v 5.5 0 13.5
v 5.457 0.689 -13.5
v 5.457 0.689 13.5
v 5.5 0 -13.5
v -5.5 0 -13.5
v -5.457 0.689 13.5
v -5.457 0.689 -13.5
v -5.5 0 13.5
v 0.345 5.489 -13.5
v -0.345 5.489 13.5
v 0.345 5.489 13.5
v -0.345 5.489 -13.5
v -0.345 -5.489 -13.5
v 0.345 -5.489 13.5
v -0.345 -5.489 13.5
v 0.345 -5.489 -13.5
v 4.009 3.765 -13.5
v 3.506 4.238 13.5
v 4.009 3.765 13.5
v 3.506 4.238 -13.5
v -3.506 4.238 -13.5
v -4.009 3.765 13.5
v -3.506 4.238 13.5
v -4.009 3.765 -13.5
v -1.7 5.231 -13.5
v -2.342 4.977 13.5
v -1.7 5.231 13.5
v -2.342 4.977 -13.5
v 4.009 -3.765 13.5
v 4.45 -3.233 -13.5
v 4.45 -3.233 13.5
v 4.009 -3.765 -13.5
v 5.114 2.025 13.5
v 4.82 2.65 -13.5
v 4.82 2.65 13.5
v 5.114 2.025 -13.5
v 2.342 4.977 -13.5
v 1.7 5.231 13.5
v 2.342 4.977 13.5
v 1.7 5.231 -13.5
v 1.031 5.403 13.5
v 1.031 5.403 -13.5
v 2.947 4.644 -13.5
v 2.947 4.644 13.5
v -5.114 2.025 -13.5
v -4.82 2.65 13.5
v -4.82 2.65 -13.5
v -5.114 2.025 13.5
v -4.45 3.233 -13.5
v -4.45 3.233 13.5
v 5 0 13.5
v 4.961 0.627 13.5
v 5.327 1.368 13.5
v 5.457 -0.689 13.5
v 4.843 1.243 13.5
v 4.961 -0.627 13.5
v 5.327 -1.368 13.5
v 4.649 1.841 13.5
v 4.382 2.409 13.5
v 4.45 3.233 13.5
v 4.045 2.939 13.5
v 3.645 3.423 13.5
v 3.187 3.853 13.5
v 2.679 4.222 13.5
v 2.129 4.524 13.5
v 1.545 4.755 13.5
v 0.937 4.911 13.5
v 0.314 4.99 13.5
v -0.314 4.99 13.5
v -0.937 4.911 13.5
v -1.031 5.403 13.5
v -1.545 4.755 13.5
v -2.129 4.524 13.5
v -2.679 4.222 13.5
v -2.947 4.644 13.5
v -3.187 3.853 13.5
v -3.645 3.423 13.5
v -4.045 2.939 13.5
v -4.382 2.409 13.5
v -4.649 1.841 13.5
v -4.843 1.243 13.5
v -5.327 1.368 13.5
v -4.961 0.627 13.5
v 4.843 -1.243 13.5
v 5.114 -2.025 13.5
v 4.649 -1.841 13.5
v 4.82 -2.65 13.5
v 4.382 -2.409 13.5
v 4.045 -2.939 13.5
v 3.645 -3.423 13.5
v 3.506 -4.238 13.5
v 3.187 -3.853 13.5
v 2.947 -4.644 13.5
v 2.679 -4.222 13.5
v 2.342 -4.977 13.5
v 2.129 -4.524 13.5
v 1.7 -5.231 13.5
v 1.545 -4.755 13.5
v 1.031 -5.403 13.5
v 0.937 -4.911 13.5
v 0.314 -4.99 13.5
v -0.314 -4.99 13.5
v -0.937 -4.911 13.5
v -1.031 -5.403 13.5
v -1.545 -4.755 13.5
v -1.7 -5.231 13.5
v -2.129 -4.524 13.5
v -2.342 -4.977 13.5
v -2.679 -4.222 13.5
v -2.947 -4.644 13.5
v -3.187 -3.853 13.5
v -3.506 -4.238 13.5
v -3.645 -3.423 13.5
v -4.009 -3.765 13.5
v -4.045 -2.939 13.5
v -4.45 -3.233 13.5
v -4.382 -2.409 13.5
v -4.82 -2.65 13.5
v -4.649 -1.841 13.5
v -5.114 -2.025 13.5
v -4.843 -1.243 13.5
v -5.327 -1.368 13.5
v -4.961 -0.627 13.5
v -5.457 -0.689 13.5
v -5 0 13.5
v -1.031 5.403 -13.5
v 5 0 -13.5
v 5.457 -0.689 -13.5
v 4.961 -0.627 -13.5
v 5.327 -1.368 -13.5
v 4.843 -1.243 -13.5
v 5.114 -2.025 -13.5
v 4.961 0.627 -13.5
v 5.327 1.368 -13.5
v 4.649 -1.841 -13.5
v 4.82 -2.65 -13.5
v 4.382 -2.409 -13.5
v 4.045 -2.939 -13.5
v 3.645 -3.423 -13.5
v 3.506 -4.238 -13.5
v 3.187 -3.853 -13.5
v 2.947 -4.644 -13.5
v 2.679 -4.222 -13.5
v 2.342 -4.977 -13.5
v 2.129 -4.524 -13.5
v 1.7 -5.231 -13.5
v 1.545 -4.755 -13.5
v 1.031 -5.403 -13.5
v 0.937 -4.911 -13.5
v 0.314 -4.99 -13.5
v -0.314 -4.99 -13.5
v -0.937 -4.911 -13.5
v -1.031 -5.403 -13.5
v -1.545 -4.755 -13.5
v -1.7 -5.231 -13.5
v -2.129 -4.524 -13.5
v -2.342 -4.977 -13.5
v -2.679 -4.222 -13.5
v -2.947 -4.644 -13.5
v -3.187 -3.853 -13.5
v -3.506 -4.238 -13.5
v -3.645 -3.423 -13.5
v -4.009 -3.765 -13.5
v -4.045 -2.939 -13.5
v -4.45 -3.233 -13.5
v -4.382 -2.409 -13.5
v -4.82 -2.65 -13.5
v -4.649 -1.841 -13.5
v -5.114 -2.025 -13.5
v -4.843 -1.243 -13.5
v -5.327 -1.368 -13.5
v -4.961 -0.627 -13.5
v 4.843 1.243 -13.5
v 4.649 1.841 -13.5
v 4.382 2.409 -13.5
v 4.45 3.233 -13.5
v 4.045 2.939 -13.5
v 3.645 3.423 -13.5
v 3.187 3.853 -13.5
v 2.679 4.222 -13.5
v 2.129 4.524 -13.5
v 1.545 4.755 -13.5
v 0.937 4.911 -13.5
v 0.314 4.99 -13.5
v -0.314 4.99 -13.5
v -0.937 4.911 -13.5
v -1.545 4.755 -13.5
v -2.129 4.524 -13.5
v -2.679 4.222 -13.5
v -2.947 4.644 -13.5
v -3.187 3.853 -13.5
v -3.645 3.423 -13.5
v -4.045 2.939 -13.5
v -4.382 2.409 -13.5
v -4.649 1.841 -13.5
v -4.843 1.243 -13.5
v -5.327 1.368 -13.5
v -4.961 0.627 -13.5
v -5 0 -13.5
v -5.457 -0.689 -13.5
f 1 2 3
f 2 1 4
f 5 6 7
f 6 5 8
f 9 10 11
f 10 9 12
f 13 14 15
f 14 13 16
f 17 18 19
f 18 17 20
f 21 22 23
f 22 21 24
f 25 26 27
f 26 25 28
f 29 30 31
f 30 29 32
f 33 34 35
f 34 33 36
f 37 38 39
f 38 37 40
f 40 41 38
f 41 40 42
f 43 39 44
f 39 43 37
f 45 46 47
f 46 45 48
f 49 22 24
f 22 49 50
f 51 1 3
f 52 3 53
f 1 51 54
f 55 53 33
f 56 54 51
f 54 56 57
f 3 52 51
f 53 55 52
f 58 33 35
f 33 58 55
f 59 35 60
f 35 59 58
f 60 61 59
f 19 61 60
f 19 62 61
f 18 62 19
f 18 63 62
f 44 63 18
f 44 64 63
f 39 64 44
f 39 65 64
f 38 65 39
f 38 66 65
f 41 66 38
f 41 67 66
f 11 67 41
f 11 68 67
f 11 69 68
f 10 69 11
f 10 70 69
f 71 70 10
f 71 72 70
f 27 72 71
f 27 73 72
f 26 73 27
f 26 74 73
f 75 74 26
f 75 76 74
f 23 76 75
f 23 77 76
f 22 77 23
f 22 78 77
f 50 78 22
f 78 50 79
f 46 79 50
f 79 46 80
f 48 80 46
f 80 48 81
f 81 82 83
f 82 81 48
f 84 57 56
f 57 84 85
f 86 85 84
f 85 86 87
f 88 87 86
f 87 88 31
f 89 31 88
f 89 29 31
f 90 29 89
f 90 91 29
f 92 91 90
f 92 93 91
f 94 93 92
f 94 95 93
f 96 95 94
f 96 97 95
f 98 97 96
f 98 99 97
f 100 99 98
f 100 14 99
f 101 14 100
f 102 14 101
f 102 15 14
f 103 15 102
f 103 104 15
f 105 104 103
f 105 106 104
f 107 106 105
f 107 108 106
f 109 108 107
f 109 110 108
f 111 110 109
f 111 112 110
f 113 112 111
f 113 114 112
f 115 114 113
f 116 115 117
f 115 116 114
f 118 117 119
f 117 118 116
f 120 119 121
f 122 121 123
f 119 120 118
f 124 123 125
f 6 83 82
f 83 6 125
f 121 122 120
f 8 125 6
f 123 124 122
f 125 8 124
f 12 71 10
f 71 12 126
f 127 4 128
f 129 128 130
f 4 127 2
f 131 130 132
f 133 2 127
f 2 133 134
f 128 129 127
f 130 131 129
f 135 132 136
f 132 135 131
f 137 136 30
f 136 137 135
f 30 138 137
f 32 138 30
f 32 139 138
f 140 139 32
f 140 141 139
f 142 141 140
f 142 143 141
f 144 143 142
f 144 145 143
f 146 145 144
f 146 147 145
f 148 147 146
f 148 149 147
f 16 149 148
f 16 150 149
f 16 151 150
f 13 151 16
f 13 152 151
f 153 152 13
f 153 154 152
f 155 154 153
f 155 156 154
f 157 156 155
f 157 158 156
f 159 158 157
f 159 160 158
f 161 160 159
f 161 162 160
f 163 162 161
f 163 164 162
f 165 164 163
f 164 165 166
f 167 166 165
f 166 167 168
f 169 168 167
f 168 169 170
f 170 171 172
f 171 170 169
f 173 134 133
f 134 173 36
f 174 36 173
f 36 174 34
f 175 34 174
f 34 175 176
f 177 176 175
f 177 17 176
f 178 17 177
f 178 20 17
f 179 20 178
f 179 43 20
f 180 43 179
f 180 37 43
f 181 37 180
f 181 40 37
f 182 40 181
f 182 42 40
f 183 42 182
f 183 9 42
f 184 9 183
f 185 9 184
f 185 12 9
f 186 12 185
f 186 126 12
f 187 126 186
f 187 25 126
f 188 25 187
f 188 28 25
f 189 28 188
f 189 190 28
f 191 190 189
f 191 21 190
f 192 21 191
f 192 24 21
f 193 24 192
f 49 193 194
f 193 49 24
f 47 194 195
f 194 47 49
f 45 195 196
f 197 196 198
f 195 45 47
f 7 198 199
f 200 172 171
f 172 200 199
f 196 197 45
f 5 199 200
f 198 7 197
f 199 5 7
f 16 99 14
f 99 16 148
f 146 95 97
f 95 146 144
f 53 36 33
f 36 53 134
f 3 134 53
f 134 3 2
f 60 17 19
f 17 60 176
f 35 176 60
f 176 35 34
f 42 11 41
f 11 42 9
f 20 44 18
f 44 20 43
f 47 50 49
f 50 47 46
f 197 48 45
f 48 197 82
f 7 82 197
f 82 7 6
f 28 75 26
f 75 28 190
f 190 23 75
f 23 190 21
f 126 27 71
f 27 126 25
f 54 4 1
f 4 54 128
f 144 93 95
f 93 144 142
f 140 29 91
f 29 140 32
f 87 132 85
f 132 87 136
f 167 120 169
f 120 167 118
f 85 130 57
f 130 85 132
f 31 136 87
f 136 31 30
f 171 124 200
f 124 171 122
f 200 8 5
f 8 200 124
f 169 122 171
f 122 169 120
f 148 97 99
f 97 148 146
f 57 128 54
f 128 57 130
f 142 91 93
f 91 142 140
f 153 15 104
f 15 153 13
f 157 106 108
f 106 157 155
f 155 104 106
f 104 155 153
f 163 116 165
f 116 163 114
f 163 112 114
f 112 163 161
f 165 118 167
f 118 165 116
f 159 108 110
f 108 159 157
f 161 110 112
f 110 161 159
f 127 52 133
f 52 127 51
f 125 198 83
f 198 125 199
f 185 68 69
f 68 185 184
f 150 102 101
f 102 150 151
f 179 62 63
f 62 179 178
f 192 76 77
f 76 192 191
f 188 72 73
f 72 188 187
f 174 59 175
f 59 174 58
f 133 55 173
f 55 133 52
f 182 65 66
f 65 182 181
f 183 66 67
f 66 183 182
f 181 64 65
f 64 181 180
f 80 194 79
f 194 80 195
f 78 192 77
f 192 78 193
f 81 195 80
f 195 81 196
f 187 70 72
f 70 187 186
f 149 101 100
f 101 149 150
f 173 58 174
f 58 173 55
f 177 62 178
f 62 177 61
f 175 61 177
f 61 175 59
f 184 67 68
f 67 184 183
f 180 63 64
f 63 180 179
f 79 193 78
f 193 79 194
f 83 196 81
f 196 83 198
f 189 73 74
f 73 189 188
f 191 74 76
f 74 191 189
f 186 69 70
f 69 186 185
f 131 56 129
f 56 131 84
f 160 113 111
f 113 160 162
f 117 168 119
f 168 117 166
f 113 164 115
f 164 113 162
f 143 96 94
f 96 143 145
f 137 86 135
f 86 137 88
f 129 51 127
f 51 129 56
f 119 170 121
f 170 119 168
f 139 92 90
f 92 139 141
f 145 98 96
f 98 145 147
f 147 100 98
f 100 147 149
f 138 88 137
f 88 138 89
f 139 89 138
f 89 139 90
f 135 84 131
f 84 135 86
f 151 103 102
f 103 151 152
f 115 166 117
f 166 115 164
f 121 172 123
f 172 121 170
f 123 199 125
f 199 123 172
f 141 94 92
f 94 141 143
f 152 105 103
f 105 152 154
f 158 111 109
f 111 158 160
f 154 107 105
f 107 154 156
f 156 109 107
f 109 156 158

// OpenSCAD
$fn = 50;


difference() {
	union() {
		translate(v = [0, 0, -13.5000000000]) {
			cylinder(h = 27, r = 5.5000000000);
		}
	}
	union() {
		translate(v = [0, 0, -100.0000000000]) {
			cylinder(h = 200, r = 5);
		}
	}
}
